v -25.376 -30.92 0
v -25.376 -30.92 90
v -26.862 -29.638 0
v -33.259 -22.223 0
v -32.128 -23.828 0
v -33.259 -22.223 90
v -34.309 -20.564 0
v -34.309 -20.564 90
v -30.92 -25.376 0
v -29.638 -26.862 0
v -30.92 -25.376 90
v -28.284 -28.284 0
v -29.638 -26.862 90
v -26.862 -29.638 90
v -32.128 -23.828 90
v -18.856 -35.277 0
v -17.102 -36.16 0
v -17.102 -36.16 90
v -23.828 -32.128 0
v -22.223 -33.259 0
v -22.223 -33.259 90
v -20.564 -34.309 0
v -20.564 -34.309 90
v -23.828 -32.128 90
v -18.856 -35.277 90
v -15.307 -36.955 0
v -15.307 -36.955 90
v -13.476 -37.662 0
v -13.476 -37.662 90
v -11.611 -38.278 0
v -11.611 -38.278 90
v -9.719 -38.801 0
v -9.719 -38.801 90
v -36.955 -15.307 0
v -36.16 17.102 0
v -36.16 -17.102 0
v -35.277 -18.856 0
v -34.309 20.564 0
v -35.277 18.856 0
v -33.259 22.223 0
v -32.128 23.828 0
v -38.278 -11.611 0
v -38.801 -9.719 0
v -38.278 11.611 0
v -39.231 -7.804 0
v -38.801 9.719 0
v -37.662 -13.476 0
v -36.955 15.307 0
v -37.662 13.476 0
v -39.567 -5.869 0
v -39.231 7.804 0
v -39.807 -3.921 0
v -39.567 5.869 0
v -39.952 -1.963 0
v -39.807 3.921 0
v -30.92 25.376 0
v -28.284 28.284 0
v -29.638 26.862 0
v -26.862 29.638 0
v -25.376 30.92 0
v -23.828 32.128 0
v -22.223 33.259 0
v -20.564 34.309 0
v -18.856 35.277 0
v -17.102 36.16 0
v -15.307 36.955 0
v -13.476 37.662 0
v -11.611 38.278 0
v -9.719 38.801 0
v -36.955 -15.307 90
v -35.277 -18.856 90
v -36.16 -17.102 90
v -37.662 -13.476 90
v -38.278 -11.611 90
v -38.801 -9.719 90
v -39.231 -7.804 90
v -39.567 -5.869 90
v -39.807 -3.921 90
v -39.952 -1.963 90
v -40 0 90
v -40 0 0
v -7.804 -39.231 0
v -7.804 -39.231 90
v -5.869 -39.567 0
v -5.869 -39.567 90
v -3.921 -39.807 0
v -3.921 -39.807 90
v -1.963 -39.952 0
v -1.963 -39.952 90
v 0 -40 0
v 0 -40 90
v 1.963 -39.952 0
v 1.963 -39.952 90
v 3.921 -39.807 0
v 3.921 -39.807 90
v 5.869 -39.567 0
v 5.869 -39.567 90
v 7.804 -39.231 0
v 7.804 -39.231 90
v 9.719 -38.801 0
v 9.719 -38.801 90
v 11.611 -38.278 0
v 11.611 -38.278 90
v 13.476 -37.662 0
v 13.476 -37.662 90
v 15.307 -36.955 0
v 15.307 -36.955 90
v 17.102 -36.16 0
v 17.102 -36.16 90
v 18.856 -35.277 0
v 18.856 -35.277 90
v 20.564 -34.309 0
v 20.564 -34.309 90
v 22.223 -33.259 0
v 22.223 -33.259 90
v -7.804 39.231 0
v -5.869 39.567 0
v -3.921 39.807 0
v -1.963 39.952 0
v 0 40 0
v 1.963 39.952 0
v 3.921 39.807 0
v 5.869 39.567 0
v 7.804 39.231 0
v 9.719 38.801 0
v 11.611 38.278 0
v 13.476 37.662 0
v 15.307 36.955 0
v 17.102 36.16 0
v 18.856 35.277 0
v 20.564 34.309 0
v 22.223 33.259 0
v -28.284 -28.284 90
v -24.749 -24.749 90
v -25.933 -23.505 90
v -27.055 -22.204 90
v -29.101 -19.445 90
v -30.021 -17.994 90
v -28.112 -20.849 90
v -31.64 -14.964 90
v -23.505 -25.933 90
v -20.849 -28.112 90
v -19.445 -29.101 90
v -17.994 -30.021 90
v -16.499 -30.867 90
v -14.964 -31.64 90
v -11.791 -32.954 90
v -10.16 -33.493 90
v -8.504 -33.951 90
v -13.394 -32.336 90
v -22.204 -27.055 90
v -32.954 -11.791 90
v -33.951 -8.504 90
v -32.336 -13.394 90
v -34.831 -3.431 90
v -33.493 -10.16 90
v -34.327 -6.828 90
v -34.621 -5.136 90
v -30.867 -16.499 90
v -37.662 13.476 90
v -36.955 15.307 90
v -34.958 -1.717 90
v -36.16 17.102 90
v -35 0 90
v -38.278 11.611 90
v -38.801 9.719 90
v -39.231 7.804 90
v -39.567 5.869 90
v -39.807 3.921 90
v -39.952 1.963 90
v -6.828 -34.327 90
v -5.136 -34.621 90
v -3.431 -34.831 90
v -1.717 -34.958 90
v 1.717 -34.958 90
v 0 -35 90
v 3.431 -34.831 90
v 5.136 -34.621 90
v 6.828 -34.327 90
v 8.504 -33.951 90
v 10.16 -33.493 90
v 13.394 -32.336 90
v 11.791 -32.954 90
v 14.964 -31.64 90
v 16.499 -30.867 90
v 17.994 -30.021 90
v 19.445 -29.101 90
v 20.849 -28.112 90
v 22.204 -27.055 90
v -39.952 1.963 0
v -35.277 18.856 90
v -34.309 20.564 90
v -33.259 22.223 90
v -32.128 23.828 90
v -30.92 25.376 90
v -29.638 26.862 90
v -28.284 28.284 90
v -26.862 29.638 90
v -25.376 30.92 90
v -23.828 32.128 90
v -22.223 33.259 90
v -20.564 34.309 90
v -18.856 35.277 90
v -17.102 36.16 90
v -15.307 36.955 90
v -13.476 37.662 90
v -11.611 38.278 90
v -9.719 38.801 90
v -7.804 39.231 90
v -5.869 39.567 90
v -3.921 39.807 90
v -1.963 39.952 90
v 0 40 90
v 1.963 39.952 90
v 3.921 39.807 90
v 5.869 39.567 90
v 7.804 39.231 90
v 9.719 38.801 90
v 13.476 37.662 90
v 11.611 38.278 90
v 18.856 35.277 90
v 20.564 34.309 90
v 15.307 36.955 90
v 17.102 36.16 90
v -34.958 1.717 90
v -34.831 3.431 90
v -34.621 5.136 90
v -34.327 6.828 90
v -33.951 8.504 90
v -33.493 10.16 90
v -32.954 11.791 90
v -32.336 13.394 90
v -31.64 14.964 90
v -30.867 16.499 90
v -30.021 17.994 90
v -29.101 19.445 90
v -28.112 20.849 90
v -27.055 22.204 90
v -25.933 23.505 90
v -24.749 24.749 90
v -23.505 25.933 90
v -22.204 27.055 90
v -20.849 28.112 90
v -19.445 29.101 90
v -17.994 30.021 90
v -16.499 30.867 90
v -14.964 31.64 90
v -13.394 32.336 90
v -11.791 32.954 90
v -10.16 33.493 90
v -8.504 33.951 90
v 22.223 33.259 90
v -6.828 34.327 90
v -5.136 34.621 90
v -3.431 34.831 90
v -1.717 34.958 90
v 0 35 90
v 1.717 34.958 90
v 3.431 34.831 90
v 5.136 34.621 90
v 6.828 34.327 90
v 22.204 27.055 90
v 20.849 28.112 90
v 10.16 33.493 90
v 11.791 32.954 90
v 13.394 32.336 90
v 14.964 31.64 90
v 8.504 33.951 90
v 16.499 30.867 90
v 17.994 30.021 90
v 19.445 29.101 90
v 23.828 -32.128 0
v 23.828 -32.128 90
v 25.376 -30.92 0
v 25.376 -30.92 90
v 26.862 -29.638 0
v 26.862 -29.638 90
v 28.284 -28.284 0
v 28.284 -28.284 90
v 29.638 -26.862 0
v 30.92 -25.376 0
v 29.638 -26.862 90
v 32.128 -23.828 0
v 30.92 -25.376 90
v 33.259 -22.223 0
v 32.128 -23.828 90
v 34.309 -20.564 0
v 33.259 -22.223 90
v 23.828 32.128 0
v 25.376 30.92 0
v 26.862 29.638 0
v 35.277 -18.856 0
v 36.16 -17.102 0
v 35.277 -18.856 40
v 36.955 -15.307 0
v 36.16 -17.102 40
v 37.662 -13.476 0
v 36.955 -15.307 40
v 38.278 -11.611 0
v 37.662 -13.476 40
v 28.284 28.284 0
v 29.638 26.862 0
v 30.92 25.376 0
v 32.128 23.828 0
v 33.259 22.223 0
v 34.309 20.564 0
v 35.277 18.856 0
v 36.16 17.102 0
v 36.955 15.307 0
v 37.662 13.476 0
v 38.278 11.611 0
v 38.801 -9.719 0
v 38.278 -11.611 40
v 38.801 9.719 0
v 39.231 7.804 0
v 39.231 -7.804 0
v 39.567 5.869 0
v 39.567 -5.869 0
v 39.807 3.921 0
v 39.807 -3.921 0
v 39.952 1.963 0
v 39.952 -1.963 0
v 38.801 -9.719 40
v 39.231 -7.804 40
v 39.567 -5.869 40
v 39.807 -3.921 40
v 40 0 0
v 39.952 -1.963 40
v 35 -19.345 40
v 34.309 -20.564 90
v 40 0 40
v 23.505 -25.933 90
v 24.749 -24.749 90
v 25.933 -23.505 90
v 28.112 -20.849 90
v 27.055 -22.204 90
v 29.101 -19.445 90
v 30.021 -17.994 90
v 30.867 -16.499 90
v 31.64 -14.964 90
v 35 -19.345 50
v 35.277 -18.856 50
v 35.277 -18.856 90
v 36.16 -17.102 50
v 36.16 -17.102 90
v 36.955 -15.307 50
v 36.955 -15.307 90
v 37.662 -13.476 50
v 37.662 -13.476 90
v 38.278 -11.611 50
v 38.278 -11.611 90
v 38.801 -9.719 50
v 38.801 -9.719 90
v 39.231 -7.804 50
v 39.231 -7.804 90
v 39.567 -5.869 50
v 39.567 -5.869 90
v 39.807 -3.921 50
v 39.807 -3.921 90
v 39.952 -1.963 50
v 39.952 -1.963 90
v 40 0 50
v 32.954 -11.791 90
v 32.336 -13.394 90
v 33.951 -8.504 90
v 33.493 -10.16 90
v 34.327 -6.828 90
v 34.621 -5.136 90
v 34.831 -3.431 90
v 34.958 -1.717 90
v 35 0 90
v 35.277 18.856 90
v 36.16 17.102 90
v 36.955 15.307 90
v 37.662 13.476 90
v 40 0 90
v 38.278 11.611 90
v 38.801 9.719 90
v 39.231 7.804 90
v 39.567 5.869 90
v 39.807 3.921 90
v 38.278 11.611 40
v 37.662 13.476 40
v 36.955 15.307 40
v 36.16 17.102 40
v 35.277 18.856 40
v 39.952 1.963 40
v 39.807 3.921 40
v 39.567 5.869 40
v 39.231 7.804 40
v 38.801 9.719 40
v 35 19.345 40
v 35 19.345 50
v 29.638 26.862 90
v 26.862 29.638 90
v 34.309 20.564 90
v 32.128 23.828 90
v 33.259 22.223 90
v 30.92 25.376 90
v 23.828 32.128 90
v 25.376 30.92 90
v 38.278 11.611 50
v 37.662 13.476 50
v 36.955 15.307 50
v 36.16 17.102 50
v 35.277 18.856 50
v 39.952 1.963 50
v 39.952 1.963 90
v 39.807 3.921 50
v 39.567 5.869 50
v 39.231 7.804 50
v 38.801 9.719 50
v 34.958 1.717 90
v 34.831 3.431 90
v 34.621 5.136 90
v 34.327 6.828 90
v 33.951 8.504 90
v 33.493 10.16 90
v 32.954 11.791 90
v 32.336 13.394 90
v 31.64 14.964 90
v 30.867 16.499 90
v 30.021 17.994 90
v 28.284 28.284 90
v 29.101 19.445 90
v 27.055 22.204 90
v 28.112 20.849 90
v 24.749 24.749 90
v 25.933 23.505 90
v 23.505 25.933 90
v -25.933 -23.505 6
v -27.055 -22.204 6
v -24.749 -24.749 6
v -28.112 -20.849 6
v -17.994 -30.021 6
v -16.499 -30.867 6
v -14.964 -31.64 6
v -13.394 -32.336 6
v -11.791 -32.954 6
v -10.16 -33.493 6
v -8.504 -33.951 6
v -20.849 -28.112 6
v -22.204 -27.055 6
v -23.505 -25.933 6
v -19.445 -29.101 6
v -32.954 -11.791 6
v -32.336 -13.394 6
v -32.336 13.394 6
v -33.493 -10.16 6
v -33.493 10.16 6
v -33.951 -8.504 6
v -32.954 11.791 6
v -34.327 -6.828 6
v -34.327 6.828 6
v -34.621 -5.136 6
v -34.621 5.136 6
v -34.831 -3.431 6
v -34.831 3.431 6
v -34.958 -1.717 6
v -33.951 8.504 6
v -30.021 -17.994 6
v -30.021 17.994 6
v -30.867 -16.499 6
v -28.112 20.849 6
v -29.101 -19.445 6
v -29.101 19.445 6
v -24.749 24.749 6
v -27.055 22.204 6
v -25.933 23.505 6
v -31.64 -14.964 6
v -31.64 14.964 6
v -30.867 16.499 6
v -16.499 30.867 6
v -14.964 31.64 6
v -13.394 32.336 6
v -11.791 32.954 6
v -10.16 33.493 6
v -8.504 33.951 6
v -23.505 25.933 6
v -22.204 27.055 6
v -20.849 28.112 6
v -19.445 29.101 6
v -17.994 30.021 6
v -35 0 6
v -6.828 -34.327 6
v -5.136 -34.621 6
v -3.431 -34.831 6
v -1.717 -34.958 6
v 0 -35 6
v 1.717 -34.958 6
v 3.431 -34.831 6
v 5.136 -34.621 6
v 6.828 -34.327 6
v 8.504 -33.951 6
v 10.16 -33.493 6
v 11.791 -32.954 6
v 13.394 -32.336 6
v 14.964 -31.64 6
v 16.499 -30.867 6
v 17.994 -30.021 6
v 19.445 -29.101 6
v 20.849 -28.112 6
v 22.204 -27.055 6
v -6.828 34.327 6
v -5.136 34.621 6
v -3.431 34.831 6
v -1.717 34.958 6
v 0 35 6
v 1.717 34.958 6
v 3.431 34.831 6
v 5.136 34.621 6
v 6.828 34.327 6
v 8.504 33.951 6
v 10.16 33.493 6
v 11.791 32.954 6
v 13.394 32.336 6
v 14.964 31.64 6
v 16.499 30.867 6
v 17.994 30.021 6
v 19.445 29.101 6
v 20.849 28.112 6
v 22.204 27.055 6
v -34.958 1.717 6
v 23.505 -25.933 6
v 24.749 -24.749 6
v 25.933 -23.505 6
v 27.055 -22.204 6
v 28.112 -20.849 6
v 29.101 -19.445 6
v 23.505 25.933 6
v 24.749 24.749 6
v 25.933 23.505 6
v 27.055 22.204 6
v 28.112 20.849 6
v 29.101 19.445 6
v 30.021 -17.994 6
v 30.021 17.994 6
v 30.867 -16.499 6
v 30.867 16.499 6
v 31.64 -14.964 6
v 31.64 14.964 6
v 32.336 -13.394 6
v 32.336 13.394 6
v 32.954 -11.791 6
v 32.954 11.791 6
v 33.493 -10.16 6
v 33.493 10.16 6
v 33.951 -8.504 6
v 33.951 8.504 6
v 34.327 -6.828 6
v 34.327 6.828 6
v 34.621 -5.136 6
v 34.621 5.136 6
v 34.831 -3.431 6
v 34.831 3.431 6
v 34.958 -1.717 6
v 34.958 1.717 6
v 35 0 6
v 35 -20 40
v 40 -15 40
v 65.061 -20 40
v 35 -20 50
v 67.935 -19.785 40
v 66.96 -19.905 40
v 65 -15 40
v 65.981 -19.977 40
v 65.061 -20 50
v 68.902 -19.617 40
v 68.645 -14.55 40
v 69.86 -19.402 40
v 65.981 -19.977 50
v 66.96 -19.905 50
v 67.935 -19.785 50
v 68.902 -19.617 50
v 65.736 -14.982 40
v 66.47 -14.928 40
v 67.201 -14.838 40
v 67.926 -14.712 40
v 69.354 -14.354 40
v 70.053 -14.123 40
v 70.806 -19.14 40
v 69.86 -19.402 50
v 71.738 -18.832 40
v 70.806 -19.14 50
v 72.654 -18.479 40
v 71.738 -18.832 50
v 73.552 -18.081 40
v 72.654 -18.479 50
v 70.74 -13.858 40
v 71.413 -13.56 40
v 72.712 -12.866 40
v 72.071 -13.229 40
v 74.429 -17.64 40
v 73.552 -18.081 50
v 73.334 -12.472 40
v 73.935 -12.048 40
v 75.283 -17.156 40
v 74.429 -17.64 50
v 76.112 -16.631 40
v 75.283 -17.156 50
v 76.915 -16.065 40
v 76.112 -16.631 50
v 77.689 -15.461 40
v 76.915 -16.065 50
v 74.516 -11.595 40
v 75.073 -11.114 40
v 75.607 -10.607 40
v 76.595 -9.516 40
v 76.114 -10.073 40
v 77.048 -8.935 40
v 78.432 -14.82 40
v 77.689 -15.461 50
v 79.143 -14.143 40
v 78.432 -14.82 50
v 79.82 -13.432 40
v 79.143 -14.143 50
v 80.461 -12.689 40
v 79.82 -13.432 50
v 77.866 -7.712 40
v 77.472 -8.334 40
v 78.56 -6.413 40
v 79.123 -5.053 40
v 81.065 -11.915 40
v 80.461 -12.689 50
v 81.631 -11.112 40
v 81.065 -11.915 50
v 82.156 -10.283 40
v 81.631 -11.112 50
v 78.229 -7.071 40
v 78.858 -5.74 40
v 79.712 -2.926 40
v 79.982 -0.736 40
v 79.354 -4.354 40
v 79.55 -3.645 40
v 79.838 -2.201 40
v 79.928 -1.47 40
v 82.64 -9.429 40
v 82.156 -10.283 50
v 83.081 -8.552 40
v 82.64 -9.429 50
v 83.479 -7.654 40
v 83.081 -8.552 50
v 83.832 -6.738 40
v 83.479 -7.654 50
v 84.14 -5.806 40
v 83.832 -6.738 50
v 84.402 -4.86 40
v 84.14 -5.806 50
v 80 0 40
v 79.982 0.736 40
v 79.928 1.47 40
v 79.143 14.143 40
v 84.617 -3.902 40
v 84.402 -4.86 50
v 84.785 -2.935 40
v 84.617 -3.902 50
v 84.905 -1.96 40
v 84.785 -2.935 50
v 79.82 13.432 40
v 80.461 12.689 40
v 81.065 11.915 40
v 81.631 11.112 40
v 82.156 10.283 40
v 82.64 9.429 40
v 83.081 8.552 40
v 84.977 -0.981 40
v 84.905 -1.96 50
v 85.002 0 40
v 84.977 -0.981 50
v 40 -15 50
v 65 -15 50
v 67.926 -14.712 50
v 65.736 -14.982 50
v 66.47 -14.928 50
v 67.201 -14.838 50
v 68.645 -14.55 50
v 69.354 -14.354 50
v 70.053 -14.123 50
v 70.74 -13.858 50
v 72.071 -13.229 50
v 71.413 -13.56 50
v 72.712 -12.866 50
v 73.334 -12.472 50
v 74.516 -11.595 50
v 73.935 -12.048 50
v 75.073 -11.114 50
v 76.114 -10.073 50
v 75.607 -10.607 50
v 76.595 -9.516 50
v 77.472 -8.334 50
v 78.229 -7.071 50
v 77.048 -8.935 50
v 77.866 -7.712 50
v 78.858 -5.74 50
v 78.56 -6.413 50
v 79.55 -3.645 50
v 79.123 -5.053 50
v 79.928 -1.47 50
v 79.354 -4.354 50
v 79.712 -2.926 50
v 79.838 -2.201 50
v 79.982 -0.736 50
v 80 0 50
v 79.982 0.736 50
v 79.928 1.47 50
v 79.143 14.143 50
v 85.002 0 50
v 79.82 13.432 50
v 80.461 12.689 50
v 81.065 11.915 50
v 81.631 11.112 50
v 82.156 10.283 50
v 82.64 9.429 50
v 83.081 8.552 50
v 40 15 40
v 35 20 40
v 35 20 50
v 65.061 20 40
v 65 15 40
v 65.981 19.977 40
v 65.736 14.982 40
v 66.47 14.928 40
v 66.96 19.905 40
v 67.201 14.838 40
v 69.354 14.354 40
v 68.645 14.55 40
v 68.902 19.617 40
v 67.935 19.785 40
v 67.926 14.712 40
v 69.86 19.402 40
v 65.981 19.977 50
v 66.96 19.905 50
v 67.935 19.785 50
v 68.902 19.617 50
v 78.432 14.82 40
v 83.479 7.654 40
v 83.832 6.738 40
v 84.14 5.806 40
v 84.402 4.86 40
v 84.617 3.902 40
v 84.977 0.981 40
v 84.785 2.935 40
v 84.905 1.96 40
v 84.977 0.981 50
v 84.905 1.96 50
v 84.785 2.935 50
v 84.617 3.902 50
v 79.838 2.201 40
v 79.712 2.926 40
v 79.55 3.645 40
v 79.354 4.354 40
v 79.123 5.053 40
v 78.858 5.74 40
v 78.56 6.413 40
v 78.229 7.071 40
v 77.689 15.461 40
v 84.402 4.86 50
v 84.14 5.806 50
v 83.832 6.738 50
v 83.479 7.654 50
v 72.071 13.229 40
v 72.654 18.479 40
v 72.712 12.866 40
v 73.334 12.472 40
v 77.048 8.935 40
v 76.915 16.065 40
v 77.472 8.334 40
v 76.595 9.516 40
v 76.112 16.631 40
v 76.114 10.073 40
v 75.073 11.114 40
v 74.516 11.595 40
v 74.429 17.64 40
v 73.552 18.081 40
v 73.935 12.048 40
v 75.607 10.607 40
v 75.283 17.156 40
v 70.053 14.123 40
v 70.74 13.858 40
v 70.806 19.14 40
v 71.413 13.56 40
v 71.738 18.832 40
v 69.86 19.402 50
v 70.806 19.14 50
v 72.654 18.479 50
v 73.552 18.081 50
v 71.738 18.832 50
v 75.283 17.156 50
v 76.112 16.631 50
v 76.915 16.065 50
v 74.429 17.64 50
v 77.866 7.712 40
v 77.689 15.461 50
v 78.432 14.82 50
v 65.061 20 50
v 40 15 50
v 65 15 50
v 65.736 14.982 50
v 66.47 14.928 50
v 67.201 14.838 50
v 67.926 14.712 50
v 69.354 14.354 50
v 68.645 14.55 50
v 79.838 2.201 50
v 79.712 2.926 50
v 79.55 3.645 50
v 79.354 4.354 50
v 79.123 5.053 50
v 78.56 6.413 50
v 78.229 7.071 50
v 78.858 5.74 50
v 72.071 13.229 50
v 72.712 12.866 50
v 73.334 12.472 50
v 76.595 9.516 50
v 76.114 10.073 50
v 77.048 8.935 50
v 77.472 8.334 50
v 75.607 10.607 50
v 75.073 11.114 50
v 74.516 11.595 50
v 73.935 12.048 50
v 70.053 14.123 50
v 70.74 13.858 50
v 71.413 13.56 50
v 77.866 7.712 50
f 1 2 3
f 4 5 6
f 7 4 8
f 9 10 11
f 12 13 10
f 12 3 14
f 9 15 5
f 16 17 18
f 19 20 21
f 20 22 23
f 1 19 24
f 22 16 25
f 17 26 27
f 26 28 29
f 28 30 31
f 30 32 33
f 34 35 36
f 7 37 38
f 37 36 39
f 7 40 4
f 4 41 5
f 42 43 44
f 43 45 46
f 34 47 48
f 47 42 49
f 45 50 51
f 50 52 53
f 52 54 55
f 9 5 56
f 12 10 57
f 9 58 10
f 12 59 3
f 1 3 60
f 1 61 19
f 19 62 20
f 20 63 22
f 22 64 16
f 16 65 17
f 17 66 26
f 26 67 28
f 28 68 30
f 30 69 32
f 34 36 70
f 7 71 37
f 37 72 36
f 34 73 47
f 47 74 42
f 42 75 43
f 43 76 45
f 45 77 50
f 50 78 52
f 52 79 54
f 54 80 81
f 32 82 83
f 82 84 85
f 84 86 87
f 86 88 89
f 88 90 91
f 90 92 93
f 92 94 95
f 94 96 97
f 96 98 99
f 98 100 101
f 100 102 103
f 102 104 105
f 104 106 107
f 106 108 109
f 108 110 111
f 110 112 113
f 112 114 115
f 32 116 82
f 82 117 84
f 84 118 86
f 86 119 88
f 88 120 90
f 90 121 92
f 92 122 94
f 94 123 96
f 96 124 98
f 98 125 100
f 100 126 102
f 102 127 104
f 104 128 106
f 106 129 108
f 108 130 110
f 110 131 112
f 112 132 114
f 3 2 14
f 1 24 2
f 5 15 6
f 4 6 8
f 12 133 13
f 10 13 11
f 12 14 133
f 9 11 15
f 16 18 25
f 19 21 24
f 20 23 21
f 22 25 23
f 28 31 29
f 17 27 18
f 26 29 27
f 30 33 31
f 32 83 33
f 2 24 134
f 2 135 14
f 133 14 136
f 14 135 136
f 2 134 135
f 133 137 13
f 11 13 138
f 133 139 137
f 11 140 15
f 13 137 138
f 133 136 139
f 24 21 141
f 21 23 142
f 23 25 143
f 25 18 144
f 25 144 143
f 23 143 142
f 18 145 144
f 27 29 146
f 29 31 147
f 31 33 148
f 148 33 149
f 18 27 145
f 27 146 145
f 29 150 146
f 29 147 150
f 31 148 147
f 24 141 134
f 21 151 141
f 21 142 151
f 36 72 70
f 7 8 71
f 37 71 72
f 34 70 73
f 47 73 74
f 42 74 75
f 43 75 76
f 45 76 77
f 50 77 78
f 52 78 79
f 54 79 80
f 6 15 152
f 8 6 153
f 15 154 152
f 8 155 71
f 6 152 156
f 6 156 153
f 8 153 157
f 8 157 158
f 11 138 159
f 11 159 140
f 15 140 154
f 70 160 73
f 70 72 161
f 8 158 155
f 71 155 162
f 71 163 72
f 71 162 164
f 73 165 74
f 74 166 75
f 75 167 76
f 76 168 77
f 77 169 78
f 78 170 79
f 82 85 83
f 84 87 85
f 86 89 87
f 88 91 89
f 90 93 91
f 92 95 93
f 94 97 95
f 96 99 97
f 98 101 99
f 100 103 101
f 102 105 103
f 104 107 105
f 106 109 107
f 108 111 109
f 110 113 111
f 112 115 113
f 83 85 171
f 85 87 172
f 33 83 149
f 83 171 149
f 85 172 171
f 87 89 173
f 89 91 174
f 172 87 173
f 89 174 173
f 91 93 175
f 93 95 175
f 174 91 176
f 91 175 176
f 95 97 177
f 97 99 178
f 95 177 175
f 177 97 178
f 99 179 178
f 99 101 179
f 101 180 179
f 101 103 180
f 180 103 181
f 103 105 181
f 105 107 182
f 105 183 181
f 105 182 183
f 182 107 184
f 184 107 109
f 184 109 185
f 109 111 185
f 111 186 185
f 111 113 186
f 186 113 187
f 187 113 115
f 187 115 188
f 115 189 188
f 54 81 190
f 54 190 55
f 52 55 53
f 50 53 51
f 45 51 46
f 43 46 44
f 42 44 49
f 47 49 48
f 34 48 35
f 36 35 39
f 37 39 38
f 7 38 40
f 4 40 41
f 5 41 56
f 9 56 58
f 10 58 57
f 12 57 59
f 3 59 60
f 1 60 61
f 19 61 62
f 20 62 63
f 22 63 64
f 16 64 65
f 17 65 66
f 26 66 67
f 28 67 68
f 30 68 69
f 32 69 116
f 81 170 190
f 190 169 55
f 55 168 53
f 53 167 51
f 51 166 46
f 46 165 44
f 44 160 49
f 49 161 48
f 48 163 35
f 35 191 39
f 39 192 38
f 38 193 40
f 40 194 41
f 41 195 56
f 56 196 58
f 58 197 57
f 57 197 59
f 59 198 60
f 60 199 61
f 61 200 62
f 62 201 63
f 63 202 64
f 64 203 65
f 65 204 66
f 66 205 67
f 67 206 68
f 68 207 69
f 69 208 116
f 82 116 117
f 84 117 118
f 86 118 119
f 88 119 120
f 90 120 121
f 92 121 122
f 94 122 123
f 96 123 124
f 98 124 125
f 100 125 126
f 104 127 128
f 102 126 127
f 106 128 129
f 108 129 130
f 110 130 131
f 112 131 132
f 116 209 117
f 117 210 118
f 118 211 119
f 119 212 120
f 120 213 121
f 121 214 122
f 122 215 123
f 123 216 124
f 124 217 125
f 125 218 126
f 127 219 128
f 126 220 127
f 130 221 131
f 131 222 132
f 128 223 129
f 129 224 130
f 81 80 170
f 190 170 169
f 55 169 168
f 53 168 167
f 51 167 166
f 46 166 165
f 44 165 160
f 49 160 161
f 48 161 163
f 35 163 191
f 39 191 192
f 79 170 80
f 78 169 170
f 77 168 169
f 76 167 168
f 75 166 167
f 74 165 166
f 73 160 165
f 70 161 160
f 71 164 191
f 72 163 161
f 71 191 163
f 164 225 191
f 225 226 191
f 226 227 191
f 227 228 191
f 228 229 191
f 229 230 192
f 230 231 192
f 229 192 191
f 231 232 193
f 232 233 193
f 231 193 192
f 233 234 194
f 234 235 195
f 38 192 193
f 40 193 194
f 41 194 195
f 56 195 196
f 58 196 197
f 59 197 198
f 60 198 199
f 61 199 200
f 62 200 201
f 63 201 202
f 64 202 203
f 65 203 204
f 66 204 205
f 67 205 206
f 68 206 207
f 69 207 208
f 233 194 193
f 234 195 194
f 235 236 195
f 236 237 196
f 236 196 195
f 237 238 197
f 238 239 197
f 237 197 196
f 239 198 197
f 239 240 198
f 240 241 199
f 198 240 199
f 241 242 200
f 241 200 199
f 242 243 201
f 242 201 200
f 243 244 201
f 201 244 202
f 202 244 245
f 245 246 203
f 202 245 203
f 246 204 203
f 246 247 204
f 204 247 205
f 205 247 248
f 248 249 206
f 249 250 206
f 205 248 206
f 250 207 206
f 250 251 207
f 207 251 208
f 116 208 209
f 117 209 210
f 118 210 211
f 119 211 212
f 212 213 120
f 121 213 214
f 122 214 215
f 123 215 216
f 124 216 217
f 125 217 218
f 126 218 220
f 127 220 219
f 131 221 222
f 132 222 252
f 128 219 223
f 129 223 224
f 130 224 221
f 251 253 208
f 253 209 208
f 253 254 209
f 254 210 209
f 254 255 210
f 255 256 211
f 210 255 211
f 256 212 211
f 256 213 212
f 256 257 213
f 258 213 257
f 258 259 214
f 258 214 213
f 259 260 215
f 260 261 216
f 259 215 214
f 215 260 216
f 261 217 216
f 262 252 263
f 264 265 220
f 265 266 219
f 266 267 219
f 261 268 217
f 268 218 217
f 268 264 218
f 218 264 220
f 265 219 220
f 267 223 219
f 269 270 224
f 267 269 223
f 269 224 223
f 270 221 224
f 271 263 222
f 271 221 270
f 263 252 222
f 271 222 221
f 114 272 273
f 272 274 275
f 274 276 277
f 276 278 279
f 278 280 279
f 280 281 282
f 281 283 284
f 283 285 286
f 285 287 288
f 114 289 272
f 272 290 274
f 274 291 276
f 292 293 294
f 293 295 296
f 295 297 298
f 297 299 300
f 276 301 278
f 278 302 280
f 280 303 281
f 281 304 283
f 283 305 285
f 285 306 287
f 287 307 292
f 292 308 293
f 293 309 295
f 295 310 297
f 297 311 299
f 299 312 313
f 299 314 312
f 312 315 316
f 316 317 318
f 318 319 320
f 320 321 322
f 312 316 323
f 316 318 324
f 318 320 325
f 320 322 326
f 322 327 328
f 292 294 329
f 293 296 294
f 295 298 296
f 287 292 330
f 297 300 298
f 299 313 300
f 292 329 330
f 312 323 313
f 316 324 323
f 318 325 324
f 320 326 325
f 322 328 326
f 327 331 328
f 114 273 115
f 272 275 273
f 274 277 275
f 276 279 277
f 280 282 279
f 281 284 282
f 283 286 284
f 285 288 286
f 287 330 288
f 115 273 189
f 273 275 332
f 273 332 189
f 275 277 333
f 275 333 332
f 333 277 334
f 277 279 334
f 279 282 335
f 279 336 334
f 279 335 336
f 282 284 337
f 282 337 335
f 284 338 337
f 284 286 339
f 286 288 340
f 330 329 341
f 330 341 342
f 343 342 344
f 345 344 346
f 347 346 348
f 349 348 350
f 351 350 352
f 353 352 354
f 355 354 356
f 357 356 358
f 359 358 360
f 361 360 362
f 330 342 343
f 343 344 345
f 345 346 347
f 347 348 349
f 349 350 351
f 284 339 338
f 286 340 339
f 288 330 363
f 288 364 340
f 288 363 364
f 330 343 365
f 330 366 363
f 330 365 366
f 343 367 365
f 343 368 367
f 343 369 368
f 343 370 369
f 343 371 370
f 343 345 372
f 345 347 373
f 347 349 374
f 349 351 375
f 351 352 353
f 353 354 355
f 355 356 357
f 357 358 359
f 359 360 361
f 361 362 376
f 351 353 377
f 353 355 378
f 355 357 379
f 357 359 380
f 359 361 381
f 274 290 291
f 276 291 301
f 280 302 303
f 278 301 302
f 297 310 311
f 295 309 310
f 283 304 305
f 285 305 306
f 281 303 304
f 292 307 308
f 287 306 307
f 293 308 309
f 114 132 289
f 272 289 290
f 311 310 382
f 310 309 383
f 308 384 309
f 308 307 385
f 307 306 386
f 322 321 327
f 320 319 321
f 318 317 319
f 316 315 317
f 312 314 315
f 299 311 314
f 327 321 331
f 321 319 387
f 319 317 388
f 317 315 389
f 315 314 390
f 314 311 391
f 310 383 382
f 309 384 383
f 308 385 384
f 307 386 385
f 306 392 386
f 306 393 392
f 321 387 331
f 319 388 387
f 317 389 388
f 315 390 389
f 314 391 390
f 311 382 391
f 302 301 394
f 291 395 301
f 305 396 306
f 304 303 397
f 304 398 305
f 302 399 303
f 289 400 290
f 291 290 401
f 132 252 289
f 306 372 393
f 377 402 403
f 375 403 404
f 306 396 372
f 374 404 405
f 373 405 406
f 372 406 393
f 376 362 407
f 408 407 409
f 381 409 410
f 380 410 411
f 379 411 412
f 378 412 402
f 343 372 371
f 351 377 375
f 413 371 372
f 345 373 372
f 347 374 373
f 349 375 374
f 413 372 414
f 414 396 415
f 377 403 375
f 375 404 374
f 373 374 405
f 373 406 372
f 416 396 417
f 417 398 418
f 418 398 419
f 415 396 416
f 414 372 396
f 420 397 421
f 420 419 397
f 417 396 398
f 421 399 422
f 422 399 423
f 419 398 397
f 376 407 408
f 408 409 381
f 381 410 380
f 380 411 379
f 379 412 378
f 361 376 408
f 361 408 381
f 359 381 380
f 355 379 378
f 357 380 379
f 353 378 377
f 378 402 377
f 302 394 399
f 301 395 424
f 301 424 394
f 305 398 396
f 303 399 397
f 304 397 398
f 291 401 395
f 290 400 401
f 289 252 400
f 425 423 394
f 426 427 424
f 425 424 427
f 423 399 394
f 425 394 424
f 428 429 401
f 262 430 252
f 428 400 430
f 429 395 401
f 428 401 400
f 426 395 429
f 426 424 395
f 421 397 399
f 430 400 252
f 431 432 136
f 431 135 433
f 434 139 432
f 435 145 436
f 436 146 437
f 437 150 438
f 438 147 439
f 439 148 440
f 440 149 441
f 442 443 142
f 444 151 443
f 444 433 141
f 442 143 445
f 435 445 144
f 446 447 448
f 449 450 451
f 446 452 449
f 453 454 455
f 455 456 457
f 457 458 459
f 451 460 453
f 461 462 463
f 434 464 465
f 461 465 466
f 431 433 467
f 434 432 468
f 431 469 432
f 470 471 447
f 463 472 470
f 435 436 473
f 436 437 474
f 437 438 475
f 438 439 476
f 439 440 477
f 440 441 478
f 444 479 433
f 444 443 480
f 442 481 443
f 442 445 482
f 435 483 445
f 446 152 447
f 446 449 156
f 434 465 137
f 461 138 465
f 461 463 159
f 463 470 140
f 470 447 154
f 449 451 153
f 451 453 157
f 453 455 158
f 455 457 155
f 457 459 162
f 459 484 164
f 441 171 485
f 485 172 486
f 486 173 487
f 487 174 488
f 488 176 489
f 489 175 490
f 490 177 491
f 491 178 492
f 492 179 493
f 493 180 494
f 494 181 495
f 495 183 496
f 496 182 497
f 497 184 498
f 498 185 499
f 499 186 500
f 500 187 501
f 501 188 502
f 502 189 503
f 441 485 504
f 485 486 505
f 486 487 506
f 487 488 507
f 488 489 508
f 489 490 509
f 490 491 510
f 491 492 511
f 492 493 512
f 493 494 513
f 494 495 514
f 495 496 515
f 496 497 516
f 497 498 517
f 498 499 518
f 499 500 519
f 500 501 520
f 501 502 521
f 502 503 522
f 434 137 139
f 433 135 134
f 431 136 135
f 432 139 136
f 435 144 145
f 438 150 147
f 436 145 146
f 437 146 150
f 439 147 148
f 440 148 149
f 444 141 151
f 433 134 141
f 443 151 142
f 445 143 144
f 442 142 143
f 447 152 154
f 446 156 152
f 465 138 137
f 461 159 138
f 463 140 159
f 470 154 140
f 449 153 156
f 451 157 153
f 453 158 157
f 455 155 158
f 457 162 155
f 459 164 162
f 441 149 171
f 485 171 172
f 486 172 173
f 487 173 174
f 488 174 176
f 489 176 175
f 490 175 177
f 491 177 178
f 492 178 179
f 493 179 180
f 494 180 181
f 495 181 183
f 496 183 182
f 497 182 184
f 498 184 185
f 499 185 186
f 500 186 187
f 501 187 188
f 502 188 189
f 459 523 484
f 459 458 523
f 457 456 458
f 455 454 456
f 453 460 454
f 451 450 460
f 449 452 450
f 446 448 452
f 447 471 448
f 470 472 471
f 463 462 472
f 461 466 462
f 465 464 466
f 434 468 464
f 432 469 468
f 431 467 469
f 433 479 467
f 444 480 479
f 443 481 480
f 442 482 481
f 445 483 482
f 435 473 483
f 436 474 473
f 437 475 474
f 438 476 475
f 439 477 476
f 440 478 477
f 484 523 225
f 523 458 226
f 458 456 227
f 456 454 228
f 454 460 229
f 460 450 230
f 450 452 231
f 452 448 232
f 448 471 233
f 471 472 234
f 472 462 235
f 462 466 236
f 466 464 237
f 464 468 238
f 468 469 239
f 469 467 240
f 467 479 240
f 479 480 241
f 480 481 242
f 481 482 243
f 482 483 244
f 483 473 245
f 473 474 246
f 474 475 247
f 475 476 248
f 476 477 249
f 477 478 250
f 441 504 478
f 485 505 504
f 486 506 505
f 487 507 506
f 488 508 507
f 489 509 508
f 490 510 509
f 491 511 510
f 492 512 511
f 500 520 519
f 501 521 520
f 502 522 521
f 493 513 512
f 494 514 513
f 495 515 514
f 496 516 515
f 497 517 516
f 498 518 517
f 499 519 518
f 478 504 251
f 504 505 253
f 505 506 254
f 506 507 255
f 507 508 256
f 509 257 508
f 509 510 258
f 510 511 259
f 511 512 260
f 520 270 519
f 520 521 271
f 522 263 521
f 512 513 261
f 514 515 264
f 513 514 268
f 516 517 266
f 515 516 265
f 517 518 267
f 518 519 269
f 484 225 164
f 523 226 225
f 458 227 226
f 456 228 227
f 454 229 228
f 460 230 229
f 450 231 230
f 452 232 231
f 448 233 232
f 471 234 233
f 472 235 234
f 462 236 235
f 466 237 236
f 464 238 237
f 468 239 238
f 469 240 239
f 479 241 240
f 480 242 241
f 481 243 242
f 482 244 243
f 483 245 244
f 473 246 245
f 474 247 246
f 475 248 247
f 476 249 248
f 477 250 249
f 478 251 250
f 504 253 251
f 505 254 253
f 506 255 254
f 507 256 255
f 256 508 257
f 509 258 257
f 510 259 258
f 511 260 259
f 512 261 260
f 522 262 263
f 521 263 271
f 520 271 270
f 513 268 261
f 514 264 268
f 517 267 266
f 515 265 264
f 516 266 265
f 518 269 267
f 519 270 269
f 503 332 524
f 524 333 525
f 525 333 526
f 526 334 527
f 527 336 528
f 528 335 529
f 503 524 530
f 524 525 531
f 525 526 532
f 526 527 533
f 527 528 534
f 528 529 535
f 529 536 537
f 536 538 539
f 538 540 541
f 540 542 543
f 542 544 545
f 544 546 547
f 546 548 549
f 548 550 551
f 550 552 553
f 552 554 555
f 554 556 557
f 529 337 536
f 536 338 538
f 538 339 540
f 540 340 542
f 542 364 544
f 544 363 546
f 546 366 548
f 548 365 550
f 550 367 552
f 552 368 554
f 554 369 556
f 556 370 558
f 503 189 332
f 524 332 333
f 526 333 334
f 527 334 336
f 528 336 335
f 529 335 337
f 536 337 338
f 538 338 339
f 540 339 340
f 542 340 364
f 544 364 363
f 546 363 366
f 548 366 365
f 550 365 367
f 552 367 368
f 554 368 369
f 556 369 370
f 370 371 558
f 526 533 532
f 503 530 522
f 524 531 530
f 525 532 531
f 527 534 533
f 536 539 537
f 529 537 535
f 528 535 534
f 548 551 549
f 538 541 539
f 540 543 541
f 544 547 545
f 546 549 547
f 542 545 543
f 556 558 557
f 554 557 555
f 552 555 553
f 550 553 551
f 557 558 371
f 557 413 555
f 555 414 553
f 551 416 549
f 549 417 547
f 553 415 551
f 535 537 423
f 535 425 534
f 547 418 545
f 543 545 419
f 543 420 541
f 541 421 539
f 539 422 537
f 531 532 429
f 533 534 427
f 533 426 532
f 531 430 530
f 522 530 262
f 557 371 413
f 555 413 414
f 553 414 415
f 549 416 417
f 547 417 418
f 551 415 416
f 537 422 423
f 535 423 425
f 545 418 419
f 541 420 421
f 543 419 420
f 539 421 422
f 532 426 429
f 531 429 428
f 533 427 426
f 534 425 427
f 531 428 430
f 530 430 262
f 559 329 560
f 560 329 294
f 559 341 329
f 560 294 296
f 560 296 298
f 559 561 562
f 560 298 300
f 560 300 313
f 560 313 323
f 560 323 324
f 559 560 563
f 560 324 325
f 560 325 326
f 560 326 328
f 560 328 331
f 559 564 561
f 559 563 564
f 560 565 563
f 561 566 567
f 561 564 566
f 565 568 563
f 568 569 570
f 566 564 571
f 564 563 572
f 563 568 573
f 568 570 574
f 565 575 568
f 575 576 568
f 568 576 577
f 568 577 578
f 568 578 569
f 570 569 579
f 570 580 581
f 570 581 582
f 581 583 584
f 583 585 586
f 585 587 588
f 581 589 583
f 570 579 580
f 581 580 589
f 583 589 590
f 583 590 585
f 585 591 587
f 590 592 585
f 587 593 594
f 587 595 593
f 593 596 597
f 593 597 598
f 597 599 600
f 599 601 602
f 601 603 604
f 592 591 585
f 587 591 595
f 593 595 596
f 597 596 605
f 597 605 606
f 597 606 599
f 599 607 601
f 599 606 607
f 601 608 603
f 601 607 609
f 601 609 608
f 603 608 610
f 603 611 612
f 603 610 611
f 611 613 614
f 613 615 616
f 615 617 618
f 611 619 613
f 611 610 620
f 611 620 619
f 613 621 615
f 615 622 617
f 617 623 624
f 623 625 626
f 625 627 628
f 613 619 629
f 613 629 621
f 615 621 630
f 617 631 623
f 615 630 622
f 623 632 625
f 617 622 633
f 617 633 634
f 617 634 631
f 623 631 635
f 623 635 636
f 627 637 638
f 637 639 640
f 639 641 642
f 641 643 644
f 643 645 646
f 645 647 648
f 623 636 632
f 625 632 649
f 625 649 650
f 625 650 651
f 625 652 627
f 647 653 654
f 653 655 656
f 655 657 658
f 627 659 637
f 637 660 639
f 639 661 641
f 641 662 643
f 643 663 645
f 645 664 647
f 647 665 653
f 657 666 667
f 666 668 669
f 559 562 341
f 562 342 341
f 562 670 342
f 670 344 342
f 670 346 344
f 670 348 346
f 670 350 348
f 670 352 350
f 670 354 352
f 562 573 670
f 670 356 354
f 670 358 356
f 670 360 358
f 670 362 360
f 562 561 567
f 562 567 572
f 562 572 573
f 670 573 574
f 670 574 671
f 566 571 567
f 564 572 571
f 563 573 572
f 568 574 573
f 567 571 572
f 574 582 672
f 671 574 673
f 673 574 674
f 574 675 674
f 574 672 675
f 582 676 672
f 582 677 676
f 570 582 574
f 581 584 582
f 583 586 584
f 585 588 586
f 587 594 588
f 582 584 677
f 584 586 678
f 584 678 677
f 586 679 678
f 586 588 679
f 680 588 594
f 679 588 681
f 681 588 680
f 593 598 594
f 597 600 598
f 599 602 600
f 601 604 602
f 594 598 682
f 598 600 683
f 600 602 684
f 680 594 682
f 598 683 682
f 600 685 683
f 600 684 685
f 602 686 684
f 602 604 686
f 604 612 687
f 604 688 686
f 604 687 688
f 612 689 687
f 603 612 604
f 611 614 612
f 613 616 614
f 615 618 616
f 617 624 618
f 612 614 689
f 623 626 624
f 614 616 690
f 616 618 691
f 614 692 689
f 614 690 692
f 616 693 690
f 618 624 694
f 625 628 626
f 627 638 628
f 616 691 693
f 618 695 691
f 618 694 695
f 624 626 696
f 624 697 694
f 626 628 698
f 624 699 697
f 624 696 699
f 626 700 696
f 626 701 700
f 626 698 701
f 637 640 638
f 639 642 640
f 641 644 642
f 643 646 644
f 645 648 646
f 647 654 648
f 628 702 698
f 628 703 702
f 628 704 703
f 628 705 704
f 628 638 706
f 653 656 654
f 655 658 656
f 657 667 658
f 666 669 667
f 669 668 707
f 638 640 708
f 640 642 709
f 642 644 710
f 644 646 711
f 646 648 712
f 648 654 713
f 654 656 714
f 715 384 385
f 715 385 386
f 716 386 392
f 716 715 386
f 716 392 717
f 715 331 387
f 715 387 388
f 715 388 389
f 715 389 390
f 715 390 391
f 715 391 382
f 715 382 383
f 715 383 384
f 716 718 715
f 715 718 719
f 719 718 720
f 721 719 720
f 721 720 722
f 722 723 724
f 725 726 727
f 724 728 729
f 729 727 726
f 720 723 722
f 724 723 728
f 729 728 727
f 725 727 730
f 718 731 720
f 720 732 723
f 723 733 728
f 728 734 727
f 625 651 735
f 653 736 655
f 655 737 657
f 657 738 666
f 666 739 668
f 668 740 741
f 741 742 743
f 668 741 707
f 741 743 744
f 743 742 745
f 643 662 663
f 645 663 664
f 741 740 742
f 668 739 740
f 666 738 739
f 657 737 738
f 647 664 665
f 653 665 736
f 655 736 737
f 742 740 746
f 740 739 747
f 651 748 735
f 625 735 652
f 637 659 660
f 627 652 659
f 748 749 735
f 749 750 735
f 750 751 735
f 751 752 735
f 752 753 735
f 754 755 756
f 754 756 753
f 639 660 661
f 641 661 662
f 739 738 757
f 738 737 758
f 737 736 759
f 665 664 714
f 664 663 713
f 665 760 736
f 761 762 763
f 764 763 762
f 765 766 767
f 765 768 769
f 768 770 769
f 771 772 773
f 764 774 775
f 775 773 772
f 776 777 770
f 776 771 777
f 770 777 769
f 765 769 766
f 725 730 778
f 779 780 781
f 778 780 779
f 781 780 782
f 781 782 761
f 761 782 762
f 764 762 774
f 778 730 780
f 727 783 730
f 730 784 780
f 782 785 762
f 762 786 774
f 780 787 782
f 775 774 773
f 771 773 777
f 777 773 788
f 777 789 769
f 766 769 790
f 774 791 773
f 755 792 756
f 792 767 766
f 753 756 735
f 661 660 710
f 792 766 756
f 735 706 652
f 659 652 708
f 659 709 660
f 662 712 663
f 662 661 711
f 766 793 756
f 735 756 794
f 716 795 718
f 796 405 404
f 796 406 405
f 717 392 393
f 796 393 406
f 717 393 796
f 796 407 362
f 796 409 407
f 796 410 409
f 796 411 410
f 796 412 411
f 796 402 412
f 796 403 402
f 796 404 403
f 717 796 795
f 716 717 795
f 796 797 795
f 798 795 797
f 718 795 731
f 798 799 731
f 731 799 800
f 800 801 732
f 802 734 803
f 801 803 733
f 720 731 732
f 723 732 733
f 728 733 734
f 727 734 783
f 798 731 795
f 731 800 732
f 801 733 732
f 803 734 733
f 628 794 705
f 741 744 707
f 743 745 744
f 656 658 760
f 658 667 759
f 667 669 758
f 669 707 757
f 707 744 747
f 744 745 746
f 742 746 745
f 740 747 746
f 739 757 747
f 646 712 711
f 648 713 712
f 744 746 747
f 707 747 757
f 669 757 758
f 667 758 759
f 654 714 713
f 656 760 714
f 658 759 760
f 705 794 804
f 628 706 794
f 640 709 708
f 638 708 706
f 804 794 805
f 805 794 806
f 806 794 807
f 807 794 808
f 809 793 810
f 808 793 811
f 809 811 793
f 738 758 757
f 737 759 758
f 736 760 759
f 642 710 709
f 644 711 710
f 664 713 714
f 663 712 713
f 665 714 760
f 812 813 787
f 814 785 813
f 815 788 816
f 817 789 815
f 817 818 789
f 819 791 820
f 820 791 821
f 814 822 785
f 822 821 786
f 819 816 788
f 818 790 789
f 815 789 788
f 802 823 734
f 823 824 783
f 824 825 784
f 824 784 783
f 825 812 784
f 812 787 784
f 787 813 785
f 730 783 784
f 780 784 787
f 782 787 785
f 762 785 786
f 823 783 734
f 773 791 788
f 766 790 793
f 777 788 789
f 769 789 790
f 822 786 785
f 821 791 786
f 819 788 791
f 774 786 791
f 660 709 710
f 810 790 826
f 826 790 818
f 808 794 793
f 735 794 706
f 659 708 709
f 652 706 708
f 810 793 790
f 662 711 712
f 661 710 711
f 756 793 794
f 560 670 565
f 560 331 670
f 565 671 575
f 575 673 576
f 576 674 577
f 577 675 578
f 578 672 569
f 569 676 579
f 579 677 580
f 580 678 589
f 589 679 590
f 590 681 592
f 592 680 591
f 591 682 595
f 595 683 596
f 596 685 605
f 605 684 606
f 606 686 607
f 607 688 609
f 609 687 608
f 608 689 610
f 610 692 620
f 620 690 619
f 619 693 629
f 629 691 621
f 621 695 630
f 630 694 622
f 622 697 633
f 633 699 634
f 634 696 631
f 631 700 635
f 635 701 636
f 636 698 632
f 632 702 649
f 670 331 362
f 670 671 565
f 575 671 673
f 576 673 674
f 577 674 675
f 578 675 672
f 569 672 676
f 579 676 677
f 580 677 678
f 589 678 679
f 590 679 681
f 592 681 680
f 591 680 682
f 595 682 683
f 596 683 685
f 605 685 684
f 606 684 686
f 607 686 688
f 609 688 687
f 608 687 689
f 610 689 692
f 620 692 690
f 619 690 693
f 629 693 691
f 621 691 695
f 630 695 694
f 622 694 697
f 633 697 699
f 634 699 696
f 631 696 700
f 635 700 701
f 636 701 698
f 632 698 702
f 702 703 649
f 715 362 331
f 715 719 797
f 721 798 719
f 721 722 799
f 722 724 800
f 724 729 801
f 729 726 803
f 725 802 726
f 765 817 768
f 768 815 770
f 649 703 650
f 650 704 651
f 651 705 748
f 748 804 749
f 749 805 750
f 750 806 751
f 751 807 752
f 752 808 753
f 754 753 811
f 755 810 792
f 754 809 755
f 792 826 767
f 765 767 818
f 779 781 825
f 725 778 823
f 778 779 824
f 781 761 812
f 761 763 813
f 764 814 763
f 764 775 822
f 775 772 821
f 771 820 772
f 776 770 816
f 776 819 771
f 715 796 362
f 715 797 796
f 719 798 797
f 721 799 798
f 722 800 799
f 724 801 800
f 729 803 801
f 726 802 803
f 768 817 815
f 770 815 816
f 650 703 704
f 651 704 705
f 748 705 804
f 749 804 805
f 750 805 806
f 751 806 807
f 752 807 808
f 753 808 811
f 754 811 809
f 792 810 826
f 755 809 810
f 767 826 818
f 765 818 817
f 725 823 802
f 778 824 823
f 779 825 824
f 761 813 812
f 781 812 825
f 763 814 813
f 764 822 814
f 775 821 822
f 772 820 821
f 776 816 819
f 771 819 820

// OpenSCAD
// Parameters
$fn = 128;

//------------------
// Mug body
//------------------
module mug_body() {
    outer_radius = 40;        // 80 mm outer diameter
    inner_radius = 35;        // 70 mm inner diameter
    height       = 90;
    bottom_thk   = 6;
    
    difference() {
        // Outer shell
        cylinder(h = height, r = outer_radius);
        
        // Inner cavity (raised by bottom thickness)
        translate([0, 0, bottom_thk])
            cylinder(h = height - bottom_thk, r = inner_radius);
    }
}

//------------------
// Handle
//------------------
module handle() {
    inner_h   = 30;   // inner vertical clearance
    inner_w   = 25;   // inner horizontal clearance
    wall_thk  = 5;    // handle wall thickness
    depth     = 10;   // thickness (depth) of handle along Y
    
    // 2-D inner void of the handle (D-shape) in the X–Z plane
    module inner_shape() {
        union() {
            // Rectangle part
            translate([0, -inner_h/2])
                square([inner_w, inner_h], center = false);
            // Semicircular end
            translate([inner_w, 0])
                circle(r = inner_h/2);
        }
    }
    
    // 2-D outer profile (offset of inner shape)
    module outer_shape() {
        offset(delta = wall_thk) inner_shape();
    }
    
    // Build 3-D handle by extruding the 2-D profiles along Y
    translate([40, 0, 45])  // attach to +X side, centered vertically
    difference() {
        // Solid outer shell
        linear_extrude(height = depth, center = true)
            outer_shape();
        // Hollow out the finger space
        linear_extrude(height = depth, center = true)
            inner_shape();
    }
}

//------------------
// Assembly
//------------------
union() {
    mug_body();
    handle();
}
